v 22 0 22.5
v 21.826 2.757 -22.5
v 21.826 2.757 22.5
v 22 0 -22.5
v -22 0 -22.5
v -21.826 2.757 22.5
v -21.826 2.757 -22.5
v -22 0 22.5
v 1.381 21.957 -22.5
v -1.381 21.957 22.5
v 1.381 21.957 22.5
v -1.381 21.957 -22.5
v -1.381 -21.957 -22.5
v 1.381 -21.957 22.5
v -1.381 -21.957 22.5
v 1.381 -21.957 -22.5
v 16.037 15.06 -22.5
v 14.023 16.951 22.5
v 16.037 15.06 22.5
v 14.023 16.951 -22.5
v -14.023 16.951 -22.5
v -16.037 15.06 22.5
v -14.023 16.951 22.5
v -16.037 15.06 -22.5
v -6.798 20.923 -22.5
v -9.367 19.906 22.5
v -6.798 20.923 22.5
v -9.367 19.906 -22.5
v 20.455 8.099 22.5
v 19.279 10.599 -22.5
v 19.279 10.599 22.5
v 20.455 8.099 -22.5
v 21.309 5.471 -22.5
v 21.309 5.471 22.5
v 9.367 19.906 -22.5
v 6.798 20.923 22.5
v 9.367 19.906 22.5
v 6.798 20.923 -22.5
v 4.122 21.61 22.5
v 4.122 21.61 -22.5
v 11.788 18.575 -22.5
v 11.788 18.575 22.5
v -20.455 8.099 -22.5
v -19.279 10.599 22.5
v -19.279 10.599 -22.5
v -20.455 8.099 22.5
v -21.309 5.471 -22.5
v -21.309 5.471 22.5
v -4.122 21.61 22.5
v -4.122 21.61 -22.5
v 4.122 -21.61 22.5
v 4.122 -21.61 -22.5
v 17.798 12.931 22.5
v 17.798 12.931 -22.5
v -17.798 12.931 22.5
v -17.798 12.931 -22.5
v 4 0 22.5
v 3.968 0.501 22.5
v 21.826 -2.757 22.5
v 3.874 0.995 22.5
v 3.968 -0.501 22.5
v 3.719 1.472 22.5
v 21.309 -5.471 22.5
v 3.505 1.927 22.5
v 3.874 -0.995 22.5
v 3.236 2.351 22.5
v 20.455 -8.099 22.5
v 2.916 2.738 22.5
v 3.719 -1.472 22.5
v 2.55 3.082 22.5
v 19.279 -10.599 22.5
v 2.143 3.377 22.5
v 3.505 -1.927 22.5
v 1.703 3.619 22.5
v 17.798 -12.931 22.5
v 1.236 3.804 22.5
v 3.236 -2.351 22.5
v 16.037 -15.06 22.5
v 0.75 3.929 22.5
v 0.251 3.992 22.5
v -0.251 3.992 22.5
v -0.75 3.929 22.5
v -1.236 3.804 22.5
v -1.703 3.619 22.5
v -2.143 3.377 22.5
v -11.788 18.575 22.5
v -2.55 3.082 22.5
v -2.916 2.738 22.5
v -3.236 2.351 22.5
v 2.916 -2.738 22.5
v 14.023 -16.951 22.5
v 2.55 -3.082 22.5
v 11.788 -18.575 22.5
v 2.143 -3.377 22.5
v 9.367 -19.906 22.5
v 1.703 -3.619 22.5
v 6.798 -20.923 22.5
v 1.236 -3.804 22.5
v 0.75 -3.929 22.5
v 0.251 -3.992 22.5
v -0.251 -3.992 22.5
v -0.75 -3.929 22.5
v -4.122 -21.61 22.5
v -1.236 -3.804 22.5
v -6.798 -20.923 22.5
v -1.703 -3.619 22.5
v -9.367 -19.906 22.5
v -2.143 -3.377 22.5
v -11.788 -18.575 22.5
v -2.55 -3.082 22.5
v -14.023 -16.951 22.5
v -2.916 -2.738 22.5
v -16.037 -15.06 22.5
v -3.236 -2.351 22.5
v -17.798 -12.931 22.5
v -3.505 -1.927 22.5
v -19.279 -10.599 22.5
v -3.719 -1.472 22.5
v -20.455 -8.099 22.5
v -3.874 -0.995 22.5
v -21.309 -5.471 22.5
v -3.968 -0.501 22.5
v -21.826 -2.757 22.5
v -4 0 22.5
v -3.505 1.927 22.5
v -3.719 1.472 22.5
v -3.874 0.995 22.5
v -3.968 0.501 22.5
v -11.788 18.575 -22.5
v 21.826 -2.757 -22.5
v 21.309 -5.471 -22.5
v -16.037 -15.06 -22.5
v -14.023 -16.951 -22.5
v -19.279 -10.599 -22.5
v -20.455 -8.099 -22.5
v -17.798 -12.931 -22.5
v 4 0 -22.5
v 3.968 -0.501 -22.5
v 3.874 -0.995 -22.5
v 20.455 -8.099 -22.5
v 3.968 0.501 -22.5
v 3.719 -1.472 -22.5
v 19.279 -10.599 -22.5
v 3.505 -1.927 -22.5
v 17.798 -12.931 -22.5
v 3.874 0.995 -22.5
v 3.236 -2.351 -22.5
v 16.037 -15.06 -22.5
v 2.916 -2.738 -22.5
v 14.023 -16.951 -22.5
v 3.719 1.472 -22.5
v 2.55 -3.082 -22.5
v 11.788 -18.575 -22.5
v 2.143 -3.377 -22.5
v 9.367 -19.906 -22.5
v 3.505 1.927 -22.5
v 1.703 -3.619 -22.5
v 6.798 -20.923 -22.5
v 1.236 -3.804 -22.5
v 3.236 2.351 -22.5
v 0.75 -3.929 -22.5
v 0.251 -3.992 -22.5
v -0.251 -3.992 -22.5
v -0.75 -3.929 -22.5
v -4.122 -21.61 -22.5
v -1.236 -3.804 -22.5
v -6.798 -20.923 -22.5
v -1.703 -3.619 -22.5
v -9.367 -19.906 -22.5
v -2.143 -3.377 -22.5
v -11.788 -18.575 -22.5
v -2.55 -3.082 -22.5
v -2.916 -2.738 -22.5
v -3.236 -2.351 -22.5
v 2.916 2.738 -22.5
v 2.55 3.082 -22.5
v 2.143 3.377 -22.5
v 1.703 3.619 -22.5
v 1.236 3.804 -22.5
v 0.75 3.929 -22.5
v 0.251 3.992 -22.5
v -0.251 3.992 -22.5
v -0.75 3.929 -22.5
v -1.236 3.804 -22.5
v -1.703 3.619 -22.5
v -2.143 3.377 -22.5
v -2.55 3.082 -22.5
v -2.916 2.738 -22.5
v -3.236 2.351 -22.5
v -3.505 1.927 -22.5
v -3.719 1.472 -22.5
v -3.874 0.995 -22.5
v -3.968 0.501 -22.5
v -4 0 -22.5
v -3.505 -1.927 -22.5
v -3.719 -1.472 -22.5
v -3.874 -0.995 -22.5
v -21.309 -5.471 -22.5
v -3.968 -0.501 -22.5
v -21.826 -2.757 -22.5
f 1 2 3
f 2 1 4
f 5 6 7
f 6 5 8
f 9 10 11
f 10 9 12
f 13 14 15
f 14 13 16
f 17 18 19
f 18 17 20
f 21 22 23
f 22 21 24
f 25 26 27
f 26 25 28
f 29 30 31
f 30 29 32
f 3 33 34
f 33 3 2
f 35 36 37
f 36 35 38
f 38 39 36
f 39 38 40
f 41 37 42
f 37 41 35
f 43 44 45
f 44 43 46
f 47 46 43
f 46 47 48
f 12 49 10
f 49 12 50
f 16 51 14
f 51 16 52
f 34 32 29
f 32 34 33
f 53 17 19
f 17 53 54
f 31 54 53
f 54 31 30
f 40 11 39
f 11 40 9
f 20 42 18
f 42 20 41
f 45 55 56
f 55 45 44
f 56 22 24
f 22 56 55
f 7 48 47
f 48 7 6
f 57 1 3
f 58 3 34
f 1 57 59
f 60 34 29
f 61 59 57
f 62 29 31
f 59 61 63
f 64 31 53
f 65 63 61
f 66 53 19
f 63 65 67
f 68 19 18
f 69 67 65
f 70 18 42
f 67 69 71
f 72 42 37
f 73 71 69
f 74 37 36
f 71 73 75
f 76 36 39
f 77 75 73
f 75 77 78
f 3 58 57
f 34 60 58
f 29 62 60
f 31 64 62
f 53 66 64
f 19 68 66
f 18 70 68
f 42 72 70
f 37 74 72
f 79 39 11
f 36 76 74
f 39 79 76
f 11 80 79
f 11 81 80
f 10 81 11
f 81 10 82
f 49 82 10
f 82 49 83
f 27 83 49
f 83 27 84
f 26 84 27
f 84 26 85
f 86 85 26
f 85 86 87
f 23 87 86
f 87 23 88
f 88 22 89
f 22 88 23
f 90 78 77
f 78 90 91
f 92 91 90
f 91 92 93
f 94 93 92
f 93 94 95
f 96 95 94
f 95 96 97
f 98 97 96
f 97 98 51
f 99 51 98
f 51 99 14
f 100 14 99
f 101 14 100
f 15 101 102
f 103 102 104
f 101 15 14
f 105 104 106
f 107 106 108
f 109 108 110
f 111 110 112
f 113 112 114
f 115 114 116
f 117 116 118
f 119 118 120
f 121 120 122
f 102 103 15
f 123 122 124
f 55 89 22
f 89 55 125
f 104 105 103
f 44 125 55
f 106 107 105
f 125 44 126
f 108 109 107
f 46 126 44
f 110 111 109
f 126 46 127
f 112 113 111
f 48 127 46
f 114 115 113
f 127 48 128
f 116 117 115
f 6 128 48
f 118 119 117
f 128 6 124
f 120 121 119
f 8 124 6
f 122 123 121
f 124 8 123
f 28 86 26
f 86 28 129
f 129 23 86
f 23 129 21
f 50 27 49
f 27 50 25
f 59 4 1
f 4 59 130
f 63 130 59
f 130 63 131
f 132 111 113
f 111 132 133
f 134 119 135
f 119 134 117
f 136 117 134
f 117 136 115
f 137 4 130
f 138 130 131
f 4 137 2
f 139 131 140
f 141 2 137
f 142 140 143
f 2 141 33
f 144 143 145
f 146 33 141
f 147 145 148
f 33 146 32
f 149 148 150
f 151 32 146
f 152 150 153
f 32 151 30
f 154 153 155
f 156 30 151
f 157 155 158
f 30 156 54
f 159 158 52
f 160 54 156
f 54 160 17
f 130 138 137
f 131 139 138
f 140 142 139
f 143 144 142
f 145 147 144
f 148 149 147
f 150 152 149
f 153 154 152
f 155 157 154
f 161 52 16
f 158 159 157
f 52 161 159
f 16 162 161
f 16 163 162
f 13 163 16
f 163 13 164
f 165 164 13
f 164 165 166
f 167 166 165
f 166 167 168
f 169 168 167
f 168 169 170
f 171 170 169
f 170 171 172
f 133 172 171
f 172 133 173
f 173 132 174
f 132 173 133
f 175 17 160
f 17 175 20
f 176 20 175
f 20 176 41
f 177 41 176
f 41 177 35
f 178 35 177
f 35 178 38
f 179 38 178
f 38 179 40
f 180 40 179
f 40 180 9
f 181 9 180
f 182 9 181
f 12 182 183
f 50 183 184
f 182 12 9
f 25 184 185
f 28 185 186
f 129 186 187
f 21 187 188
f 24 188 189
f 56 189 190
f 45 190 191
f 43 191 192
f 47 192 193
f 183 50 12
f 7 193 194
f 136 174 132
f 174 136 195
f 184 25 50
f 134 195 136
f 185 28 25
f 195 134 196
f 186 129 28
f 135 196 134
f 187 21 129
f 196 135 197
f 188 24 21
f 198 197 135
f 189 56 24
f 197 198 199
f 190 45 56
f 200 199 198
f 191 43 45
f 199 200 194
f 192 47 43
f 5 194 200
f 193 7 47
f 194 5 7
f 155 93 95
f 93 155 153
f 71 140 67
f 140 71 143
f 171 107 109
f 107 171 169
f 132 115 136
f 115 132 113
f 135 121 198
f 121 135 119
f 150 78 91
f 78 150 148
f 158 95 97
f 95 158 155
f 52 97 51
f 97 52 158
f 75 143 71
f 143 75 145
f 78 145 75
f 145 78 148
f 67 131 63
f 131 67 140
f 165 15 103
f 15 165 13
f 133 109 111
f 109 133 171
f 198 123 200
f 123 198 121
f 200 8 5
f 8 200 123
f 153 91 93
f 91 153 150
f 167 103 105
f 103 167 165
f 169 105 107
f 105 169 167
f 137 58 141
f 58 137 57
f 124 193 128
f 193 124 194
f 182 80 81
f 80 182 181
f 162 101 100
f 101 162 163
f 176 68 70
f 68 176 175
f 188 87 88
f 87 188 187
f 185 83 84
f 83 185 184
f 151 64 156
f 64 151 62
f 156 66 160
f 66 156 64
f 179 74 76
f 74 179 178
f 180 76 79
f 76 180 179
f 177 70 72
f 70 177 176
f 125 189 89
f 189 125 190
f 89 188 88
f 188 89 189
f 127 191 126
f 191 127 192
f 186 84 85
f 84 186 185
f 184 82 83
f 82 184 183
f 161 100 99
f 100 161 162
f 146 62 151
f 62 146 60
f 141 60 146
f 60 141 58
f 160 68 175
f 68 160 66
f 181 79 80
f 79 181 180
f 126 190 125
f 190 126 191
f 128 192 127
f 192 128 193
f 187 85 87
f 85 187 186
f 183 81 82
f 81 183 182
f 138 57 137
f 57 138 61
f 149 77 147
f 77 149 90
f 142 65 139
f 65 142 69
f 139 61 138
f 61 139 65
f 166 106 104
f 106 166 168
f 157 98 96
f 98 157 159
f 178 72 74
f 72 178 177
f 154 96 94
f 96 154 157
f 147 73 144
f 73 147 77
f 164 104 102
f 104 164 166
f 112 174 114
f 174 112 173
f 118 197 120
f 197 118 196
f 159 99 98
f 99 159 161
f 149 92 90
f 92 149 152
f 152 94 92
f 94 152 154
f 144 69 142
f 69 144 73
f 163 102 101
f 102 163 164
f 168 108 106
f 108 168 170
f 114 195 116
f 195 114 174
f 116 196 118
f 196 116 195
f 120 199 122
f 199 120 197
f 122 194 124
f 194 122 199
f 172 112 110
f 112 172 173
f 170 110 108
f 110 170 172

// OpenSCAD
$fn = 50;


difference() {
	union() {
		translate(v = [0, 0, -22.5000000000]) {
			cylinder(h = 45, r = 22.0000000000);
		}
	}
	union() {
		translate(v = [0, 0, -100.0000000000]) {
			cylinder(h = 200, r = 4);
		}
	}
}
